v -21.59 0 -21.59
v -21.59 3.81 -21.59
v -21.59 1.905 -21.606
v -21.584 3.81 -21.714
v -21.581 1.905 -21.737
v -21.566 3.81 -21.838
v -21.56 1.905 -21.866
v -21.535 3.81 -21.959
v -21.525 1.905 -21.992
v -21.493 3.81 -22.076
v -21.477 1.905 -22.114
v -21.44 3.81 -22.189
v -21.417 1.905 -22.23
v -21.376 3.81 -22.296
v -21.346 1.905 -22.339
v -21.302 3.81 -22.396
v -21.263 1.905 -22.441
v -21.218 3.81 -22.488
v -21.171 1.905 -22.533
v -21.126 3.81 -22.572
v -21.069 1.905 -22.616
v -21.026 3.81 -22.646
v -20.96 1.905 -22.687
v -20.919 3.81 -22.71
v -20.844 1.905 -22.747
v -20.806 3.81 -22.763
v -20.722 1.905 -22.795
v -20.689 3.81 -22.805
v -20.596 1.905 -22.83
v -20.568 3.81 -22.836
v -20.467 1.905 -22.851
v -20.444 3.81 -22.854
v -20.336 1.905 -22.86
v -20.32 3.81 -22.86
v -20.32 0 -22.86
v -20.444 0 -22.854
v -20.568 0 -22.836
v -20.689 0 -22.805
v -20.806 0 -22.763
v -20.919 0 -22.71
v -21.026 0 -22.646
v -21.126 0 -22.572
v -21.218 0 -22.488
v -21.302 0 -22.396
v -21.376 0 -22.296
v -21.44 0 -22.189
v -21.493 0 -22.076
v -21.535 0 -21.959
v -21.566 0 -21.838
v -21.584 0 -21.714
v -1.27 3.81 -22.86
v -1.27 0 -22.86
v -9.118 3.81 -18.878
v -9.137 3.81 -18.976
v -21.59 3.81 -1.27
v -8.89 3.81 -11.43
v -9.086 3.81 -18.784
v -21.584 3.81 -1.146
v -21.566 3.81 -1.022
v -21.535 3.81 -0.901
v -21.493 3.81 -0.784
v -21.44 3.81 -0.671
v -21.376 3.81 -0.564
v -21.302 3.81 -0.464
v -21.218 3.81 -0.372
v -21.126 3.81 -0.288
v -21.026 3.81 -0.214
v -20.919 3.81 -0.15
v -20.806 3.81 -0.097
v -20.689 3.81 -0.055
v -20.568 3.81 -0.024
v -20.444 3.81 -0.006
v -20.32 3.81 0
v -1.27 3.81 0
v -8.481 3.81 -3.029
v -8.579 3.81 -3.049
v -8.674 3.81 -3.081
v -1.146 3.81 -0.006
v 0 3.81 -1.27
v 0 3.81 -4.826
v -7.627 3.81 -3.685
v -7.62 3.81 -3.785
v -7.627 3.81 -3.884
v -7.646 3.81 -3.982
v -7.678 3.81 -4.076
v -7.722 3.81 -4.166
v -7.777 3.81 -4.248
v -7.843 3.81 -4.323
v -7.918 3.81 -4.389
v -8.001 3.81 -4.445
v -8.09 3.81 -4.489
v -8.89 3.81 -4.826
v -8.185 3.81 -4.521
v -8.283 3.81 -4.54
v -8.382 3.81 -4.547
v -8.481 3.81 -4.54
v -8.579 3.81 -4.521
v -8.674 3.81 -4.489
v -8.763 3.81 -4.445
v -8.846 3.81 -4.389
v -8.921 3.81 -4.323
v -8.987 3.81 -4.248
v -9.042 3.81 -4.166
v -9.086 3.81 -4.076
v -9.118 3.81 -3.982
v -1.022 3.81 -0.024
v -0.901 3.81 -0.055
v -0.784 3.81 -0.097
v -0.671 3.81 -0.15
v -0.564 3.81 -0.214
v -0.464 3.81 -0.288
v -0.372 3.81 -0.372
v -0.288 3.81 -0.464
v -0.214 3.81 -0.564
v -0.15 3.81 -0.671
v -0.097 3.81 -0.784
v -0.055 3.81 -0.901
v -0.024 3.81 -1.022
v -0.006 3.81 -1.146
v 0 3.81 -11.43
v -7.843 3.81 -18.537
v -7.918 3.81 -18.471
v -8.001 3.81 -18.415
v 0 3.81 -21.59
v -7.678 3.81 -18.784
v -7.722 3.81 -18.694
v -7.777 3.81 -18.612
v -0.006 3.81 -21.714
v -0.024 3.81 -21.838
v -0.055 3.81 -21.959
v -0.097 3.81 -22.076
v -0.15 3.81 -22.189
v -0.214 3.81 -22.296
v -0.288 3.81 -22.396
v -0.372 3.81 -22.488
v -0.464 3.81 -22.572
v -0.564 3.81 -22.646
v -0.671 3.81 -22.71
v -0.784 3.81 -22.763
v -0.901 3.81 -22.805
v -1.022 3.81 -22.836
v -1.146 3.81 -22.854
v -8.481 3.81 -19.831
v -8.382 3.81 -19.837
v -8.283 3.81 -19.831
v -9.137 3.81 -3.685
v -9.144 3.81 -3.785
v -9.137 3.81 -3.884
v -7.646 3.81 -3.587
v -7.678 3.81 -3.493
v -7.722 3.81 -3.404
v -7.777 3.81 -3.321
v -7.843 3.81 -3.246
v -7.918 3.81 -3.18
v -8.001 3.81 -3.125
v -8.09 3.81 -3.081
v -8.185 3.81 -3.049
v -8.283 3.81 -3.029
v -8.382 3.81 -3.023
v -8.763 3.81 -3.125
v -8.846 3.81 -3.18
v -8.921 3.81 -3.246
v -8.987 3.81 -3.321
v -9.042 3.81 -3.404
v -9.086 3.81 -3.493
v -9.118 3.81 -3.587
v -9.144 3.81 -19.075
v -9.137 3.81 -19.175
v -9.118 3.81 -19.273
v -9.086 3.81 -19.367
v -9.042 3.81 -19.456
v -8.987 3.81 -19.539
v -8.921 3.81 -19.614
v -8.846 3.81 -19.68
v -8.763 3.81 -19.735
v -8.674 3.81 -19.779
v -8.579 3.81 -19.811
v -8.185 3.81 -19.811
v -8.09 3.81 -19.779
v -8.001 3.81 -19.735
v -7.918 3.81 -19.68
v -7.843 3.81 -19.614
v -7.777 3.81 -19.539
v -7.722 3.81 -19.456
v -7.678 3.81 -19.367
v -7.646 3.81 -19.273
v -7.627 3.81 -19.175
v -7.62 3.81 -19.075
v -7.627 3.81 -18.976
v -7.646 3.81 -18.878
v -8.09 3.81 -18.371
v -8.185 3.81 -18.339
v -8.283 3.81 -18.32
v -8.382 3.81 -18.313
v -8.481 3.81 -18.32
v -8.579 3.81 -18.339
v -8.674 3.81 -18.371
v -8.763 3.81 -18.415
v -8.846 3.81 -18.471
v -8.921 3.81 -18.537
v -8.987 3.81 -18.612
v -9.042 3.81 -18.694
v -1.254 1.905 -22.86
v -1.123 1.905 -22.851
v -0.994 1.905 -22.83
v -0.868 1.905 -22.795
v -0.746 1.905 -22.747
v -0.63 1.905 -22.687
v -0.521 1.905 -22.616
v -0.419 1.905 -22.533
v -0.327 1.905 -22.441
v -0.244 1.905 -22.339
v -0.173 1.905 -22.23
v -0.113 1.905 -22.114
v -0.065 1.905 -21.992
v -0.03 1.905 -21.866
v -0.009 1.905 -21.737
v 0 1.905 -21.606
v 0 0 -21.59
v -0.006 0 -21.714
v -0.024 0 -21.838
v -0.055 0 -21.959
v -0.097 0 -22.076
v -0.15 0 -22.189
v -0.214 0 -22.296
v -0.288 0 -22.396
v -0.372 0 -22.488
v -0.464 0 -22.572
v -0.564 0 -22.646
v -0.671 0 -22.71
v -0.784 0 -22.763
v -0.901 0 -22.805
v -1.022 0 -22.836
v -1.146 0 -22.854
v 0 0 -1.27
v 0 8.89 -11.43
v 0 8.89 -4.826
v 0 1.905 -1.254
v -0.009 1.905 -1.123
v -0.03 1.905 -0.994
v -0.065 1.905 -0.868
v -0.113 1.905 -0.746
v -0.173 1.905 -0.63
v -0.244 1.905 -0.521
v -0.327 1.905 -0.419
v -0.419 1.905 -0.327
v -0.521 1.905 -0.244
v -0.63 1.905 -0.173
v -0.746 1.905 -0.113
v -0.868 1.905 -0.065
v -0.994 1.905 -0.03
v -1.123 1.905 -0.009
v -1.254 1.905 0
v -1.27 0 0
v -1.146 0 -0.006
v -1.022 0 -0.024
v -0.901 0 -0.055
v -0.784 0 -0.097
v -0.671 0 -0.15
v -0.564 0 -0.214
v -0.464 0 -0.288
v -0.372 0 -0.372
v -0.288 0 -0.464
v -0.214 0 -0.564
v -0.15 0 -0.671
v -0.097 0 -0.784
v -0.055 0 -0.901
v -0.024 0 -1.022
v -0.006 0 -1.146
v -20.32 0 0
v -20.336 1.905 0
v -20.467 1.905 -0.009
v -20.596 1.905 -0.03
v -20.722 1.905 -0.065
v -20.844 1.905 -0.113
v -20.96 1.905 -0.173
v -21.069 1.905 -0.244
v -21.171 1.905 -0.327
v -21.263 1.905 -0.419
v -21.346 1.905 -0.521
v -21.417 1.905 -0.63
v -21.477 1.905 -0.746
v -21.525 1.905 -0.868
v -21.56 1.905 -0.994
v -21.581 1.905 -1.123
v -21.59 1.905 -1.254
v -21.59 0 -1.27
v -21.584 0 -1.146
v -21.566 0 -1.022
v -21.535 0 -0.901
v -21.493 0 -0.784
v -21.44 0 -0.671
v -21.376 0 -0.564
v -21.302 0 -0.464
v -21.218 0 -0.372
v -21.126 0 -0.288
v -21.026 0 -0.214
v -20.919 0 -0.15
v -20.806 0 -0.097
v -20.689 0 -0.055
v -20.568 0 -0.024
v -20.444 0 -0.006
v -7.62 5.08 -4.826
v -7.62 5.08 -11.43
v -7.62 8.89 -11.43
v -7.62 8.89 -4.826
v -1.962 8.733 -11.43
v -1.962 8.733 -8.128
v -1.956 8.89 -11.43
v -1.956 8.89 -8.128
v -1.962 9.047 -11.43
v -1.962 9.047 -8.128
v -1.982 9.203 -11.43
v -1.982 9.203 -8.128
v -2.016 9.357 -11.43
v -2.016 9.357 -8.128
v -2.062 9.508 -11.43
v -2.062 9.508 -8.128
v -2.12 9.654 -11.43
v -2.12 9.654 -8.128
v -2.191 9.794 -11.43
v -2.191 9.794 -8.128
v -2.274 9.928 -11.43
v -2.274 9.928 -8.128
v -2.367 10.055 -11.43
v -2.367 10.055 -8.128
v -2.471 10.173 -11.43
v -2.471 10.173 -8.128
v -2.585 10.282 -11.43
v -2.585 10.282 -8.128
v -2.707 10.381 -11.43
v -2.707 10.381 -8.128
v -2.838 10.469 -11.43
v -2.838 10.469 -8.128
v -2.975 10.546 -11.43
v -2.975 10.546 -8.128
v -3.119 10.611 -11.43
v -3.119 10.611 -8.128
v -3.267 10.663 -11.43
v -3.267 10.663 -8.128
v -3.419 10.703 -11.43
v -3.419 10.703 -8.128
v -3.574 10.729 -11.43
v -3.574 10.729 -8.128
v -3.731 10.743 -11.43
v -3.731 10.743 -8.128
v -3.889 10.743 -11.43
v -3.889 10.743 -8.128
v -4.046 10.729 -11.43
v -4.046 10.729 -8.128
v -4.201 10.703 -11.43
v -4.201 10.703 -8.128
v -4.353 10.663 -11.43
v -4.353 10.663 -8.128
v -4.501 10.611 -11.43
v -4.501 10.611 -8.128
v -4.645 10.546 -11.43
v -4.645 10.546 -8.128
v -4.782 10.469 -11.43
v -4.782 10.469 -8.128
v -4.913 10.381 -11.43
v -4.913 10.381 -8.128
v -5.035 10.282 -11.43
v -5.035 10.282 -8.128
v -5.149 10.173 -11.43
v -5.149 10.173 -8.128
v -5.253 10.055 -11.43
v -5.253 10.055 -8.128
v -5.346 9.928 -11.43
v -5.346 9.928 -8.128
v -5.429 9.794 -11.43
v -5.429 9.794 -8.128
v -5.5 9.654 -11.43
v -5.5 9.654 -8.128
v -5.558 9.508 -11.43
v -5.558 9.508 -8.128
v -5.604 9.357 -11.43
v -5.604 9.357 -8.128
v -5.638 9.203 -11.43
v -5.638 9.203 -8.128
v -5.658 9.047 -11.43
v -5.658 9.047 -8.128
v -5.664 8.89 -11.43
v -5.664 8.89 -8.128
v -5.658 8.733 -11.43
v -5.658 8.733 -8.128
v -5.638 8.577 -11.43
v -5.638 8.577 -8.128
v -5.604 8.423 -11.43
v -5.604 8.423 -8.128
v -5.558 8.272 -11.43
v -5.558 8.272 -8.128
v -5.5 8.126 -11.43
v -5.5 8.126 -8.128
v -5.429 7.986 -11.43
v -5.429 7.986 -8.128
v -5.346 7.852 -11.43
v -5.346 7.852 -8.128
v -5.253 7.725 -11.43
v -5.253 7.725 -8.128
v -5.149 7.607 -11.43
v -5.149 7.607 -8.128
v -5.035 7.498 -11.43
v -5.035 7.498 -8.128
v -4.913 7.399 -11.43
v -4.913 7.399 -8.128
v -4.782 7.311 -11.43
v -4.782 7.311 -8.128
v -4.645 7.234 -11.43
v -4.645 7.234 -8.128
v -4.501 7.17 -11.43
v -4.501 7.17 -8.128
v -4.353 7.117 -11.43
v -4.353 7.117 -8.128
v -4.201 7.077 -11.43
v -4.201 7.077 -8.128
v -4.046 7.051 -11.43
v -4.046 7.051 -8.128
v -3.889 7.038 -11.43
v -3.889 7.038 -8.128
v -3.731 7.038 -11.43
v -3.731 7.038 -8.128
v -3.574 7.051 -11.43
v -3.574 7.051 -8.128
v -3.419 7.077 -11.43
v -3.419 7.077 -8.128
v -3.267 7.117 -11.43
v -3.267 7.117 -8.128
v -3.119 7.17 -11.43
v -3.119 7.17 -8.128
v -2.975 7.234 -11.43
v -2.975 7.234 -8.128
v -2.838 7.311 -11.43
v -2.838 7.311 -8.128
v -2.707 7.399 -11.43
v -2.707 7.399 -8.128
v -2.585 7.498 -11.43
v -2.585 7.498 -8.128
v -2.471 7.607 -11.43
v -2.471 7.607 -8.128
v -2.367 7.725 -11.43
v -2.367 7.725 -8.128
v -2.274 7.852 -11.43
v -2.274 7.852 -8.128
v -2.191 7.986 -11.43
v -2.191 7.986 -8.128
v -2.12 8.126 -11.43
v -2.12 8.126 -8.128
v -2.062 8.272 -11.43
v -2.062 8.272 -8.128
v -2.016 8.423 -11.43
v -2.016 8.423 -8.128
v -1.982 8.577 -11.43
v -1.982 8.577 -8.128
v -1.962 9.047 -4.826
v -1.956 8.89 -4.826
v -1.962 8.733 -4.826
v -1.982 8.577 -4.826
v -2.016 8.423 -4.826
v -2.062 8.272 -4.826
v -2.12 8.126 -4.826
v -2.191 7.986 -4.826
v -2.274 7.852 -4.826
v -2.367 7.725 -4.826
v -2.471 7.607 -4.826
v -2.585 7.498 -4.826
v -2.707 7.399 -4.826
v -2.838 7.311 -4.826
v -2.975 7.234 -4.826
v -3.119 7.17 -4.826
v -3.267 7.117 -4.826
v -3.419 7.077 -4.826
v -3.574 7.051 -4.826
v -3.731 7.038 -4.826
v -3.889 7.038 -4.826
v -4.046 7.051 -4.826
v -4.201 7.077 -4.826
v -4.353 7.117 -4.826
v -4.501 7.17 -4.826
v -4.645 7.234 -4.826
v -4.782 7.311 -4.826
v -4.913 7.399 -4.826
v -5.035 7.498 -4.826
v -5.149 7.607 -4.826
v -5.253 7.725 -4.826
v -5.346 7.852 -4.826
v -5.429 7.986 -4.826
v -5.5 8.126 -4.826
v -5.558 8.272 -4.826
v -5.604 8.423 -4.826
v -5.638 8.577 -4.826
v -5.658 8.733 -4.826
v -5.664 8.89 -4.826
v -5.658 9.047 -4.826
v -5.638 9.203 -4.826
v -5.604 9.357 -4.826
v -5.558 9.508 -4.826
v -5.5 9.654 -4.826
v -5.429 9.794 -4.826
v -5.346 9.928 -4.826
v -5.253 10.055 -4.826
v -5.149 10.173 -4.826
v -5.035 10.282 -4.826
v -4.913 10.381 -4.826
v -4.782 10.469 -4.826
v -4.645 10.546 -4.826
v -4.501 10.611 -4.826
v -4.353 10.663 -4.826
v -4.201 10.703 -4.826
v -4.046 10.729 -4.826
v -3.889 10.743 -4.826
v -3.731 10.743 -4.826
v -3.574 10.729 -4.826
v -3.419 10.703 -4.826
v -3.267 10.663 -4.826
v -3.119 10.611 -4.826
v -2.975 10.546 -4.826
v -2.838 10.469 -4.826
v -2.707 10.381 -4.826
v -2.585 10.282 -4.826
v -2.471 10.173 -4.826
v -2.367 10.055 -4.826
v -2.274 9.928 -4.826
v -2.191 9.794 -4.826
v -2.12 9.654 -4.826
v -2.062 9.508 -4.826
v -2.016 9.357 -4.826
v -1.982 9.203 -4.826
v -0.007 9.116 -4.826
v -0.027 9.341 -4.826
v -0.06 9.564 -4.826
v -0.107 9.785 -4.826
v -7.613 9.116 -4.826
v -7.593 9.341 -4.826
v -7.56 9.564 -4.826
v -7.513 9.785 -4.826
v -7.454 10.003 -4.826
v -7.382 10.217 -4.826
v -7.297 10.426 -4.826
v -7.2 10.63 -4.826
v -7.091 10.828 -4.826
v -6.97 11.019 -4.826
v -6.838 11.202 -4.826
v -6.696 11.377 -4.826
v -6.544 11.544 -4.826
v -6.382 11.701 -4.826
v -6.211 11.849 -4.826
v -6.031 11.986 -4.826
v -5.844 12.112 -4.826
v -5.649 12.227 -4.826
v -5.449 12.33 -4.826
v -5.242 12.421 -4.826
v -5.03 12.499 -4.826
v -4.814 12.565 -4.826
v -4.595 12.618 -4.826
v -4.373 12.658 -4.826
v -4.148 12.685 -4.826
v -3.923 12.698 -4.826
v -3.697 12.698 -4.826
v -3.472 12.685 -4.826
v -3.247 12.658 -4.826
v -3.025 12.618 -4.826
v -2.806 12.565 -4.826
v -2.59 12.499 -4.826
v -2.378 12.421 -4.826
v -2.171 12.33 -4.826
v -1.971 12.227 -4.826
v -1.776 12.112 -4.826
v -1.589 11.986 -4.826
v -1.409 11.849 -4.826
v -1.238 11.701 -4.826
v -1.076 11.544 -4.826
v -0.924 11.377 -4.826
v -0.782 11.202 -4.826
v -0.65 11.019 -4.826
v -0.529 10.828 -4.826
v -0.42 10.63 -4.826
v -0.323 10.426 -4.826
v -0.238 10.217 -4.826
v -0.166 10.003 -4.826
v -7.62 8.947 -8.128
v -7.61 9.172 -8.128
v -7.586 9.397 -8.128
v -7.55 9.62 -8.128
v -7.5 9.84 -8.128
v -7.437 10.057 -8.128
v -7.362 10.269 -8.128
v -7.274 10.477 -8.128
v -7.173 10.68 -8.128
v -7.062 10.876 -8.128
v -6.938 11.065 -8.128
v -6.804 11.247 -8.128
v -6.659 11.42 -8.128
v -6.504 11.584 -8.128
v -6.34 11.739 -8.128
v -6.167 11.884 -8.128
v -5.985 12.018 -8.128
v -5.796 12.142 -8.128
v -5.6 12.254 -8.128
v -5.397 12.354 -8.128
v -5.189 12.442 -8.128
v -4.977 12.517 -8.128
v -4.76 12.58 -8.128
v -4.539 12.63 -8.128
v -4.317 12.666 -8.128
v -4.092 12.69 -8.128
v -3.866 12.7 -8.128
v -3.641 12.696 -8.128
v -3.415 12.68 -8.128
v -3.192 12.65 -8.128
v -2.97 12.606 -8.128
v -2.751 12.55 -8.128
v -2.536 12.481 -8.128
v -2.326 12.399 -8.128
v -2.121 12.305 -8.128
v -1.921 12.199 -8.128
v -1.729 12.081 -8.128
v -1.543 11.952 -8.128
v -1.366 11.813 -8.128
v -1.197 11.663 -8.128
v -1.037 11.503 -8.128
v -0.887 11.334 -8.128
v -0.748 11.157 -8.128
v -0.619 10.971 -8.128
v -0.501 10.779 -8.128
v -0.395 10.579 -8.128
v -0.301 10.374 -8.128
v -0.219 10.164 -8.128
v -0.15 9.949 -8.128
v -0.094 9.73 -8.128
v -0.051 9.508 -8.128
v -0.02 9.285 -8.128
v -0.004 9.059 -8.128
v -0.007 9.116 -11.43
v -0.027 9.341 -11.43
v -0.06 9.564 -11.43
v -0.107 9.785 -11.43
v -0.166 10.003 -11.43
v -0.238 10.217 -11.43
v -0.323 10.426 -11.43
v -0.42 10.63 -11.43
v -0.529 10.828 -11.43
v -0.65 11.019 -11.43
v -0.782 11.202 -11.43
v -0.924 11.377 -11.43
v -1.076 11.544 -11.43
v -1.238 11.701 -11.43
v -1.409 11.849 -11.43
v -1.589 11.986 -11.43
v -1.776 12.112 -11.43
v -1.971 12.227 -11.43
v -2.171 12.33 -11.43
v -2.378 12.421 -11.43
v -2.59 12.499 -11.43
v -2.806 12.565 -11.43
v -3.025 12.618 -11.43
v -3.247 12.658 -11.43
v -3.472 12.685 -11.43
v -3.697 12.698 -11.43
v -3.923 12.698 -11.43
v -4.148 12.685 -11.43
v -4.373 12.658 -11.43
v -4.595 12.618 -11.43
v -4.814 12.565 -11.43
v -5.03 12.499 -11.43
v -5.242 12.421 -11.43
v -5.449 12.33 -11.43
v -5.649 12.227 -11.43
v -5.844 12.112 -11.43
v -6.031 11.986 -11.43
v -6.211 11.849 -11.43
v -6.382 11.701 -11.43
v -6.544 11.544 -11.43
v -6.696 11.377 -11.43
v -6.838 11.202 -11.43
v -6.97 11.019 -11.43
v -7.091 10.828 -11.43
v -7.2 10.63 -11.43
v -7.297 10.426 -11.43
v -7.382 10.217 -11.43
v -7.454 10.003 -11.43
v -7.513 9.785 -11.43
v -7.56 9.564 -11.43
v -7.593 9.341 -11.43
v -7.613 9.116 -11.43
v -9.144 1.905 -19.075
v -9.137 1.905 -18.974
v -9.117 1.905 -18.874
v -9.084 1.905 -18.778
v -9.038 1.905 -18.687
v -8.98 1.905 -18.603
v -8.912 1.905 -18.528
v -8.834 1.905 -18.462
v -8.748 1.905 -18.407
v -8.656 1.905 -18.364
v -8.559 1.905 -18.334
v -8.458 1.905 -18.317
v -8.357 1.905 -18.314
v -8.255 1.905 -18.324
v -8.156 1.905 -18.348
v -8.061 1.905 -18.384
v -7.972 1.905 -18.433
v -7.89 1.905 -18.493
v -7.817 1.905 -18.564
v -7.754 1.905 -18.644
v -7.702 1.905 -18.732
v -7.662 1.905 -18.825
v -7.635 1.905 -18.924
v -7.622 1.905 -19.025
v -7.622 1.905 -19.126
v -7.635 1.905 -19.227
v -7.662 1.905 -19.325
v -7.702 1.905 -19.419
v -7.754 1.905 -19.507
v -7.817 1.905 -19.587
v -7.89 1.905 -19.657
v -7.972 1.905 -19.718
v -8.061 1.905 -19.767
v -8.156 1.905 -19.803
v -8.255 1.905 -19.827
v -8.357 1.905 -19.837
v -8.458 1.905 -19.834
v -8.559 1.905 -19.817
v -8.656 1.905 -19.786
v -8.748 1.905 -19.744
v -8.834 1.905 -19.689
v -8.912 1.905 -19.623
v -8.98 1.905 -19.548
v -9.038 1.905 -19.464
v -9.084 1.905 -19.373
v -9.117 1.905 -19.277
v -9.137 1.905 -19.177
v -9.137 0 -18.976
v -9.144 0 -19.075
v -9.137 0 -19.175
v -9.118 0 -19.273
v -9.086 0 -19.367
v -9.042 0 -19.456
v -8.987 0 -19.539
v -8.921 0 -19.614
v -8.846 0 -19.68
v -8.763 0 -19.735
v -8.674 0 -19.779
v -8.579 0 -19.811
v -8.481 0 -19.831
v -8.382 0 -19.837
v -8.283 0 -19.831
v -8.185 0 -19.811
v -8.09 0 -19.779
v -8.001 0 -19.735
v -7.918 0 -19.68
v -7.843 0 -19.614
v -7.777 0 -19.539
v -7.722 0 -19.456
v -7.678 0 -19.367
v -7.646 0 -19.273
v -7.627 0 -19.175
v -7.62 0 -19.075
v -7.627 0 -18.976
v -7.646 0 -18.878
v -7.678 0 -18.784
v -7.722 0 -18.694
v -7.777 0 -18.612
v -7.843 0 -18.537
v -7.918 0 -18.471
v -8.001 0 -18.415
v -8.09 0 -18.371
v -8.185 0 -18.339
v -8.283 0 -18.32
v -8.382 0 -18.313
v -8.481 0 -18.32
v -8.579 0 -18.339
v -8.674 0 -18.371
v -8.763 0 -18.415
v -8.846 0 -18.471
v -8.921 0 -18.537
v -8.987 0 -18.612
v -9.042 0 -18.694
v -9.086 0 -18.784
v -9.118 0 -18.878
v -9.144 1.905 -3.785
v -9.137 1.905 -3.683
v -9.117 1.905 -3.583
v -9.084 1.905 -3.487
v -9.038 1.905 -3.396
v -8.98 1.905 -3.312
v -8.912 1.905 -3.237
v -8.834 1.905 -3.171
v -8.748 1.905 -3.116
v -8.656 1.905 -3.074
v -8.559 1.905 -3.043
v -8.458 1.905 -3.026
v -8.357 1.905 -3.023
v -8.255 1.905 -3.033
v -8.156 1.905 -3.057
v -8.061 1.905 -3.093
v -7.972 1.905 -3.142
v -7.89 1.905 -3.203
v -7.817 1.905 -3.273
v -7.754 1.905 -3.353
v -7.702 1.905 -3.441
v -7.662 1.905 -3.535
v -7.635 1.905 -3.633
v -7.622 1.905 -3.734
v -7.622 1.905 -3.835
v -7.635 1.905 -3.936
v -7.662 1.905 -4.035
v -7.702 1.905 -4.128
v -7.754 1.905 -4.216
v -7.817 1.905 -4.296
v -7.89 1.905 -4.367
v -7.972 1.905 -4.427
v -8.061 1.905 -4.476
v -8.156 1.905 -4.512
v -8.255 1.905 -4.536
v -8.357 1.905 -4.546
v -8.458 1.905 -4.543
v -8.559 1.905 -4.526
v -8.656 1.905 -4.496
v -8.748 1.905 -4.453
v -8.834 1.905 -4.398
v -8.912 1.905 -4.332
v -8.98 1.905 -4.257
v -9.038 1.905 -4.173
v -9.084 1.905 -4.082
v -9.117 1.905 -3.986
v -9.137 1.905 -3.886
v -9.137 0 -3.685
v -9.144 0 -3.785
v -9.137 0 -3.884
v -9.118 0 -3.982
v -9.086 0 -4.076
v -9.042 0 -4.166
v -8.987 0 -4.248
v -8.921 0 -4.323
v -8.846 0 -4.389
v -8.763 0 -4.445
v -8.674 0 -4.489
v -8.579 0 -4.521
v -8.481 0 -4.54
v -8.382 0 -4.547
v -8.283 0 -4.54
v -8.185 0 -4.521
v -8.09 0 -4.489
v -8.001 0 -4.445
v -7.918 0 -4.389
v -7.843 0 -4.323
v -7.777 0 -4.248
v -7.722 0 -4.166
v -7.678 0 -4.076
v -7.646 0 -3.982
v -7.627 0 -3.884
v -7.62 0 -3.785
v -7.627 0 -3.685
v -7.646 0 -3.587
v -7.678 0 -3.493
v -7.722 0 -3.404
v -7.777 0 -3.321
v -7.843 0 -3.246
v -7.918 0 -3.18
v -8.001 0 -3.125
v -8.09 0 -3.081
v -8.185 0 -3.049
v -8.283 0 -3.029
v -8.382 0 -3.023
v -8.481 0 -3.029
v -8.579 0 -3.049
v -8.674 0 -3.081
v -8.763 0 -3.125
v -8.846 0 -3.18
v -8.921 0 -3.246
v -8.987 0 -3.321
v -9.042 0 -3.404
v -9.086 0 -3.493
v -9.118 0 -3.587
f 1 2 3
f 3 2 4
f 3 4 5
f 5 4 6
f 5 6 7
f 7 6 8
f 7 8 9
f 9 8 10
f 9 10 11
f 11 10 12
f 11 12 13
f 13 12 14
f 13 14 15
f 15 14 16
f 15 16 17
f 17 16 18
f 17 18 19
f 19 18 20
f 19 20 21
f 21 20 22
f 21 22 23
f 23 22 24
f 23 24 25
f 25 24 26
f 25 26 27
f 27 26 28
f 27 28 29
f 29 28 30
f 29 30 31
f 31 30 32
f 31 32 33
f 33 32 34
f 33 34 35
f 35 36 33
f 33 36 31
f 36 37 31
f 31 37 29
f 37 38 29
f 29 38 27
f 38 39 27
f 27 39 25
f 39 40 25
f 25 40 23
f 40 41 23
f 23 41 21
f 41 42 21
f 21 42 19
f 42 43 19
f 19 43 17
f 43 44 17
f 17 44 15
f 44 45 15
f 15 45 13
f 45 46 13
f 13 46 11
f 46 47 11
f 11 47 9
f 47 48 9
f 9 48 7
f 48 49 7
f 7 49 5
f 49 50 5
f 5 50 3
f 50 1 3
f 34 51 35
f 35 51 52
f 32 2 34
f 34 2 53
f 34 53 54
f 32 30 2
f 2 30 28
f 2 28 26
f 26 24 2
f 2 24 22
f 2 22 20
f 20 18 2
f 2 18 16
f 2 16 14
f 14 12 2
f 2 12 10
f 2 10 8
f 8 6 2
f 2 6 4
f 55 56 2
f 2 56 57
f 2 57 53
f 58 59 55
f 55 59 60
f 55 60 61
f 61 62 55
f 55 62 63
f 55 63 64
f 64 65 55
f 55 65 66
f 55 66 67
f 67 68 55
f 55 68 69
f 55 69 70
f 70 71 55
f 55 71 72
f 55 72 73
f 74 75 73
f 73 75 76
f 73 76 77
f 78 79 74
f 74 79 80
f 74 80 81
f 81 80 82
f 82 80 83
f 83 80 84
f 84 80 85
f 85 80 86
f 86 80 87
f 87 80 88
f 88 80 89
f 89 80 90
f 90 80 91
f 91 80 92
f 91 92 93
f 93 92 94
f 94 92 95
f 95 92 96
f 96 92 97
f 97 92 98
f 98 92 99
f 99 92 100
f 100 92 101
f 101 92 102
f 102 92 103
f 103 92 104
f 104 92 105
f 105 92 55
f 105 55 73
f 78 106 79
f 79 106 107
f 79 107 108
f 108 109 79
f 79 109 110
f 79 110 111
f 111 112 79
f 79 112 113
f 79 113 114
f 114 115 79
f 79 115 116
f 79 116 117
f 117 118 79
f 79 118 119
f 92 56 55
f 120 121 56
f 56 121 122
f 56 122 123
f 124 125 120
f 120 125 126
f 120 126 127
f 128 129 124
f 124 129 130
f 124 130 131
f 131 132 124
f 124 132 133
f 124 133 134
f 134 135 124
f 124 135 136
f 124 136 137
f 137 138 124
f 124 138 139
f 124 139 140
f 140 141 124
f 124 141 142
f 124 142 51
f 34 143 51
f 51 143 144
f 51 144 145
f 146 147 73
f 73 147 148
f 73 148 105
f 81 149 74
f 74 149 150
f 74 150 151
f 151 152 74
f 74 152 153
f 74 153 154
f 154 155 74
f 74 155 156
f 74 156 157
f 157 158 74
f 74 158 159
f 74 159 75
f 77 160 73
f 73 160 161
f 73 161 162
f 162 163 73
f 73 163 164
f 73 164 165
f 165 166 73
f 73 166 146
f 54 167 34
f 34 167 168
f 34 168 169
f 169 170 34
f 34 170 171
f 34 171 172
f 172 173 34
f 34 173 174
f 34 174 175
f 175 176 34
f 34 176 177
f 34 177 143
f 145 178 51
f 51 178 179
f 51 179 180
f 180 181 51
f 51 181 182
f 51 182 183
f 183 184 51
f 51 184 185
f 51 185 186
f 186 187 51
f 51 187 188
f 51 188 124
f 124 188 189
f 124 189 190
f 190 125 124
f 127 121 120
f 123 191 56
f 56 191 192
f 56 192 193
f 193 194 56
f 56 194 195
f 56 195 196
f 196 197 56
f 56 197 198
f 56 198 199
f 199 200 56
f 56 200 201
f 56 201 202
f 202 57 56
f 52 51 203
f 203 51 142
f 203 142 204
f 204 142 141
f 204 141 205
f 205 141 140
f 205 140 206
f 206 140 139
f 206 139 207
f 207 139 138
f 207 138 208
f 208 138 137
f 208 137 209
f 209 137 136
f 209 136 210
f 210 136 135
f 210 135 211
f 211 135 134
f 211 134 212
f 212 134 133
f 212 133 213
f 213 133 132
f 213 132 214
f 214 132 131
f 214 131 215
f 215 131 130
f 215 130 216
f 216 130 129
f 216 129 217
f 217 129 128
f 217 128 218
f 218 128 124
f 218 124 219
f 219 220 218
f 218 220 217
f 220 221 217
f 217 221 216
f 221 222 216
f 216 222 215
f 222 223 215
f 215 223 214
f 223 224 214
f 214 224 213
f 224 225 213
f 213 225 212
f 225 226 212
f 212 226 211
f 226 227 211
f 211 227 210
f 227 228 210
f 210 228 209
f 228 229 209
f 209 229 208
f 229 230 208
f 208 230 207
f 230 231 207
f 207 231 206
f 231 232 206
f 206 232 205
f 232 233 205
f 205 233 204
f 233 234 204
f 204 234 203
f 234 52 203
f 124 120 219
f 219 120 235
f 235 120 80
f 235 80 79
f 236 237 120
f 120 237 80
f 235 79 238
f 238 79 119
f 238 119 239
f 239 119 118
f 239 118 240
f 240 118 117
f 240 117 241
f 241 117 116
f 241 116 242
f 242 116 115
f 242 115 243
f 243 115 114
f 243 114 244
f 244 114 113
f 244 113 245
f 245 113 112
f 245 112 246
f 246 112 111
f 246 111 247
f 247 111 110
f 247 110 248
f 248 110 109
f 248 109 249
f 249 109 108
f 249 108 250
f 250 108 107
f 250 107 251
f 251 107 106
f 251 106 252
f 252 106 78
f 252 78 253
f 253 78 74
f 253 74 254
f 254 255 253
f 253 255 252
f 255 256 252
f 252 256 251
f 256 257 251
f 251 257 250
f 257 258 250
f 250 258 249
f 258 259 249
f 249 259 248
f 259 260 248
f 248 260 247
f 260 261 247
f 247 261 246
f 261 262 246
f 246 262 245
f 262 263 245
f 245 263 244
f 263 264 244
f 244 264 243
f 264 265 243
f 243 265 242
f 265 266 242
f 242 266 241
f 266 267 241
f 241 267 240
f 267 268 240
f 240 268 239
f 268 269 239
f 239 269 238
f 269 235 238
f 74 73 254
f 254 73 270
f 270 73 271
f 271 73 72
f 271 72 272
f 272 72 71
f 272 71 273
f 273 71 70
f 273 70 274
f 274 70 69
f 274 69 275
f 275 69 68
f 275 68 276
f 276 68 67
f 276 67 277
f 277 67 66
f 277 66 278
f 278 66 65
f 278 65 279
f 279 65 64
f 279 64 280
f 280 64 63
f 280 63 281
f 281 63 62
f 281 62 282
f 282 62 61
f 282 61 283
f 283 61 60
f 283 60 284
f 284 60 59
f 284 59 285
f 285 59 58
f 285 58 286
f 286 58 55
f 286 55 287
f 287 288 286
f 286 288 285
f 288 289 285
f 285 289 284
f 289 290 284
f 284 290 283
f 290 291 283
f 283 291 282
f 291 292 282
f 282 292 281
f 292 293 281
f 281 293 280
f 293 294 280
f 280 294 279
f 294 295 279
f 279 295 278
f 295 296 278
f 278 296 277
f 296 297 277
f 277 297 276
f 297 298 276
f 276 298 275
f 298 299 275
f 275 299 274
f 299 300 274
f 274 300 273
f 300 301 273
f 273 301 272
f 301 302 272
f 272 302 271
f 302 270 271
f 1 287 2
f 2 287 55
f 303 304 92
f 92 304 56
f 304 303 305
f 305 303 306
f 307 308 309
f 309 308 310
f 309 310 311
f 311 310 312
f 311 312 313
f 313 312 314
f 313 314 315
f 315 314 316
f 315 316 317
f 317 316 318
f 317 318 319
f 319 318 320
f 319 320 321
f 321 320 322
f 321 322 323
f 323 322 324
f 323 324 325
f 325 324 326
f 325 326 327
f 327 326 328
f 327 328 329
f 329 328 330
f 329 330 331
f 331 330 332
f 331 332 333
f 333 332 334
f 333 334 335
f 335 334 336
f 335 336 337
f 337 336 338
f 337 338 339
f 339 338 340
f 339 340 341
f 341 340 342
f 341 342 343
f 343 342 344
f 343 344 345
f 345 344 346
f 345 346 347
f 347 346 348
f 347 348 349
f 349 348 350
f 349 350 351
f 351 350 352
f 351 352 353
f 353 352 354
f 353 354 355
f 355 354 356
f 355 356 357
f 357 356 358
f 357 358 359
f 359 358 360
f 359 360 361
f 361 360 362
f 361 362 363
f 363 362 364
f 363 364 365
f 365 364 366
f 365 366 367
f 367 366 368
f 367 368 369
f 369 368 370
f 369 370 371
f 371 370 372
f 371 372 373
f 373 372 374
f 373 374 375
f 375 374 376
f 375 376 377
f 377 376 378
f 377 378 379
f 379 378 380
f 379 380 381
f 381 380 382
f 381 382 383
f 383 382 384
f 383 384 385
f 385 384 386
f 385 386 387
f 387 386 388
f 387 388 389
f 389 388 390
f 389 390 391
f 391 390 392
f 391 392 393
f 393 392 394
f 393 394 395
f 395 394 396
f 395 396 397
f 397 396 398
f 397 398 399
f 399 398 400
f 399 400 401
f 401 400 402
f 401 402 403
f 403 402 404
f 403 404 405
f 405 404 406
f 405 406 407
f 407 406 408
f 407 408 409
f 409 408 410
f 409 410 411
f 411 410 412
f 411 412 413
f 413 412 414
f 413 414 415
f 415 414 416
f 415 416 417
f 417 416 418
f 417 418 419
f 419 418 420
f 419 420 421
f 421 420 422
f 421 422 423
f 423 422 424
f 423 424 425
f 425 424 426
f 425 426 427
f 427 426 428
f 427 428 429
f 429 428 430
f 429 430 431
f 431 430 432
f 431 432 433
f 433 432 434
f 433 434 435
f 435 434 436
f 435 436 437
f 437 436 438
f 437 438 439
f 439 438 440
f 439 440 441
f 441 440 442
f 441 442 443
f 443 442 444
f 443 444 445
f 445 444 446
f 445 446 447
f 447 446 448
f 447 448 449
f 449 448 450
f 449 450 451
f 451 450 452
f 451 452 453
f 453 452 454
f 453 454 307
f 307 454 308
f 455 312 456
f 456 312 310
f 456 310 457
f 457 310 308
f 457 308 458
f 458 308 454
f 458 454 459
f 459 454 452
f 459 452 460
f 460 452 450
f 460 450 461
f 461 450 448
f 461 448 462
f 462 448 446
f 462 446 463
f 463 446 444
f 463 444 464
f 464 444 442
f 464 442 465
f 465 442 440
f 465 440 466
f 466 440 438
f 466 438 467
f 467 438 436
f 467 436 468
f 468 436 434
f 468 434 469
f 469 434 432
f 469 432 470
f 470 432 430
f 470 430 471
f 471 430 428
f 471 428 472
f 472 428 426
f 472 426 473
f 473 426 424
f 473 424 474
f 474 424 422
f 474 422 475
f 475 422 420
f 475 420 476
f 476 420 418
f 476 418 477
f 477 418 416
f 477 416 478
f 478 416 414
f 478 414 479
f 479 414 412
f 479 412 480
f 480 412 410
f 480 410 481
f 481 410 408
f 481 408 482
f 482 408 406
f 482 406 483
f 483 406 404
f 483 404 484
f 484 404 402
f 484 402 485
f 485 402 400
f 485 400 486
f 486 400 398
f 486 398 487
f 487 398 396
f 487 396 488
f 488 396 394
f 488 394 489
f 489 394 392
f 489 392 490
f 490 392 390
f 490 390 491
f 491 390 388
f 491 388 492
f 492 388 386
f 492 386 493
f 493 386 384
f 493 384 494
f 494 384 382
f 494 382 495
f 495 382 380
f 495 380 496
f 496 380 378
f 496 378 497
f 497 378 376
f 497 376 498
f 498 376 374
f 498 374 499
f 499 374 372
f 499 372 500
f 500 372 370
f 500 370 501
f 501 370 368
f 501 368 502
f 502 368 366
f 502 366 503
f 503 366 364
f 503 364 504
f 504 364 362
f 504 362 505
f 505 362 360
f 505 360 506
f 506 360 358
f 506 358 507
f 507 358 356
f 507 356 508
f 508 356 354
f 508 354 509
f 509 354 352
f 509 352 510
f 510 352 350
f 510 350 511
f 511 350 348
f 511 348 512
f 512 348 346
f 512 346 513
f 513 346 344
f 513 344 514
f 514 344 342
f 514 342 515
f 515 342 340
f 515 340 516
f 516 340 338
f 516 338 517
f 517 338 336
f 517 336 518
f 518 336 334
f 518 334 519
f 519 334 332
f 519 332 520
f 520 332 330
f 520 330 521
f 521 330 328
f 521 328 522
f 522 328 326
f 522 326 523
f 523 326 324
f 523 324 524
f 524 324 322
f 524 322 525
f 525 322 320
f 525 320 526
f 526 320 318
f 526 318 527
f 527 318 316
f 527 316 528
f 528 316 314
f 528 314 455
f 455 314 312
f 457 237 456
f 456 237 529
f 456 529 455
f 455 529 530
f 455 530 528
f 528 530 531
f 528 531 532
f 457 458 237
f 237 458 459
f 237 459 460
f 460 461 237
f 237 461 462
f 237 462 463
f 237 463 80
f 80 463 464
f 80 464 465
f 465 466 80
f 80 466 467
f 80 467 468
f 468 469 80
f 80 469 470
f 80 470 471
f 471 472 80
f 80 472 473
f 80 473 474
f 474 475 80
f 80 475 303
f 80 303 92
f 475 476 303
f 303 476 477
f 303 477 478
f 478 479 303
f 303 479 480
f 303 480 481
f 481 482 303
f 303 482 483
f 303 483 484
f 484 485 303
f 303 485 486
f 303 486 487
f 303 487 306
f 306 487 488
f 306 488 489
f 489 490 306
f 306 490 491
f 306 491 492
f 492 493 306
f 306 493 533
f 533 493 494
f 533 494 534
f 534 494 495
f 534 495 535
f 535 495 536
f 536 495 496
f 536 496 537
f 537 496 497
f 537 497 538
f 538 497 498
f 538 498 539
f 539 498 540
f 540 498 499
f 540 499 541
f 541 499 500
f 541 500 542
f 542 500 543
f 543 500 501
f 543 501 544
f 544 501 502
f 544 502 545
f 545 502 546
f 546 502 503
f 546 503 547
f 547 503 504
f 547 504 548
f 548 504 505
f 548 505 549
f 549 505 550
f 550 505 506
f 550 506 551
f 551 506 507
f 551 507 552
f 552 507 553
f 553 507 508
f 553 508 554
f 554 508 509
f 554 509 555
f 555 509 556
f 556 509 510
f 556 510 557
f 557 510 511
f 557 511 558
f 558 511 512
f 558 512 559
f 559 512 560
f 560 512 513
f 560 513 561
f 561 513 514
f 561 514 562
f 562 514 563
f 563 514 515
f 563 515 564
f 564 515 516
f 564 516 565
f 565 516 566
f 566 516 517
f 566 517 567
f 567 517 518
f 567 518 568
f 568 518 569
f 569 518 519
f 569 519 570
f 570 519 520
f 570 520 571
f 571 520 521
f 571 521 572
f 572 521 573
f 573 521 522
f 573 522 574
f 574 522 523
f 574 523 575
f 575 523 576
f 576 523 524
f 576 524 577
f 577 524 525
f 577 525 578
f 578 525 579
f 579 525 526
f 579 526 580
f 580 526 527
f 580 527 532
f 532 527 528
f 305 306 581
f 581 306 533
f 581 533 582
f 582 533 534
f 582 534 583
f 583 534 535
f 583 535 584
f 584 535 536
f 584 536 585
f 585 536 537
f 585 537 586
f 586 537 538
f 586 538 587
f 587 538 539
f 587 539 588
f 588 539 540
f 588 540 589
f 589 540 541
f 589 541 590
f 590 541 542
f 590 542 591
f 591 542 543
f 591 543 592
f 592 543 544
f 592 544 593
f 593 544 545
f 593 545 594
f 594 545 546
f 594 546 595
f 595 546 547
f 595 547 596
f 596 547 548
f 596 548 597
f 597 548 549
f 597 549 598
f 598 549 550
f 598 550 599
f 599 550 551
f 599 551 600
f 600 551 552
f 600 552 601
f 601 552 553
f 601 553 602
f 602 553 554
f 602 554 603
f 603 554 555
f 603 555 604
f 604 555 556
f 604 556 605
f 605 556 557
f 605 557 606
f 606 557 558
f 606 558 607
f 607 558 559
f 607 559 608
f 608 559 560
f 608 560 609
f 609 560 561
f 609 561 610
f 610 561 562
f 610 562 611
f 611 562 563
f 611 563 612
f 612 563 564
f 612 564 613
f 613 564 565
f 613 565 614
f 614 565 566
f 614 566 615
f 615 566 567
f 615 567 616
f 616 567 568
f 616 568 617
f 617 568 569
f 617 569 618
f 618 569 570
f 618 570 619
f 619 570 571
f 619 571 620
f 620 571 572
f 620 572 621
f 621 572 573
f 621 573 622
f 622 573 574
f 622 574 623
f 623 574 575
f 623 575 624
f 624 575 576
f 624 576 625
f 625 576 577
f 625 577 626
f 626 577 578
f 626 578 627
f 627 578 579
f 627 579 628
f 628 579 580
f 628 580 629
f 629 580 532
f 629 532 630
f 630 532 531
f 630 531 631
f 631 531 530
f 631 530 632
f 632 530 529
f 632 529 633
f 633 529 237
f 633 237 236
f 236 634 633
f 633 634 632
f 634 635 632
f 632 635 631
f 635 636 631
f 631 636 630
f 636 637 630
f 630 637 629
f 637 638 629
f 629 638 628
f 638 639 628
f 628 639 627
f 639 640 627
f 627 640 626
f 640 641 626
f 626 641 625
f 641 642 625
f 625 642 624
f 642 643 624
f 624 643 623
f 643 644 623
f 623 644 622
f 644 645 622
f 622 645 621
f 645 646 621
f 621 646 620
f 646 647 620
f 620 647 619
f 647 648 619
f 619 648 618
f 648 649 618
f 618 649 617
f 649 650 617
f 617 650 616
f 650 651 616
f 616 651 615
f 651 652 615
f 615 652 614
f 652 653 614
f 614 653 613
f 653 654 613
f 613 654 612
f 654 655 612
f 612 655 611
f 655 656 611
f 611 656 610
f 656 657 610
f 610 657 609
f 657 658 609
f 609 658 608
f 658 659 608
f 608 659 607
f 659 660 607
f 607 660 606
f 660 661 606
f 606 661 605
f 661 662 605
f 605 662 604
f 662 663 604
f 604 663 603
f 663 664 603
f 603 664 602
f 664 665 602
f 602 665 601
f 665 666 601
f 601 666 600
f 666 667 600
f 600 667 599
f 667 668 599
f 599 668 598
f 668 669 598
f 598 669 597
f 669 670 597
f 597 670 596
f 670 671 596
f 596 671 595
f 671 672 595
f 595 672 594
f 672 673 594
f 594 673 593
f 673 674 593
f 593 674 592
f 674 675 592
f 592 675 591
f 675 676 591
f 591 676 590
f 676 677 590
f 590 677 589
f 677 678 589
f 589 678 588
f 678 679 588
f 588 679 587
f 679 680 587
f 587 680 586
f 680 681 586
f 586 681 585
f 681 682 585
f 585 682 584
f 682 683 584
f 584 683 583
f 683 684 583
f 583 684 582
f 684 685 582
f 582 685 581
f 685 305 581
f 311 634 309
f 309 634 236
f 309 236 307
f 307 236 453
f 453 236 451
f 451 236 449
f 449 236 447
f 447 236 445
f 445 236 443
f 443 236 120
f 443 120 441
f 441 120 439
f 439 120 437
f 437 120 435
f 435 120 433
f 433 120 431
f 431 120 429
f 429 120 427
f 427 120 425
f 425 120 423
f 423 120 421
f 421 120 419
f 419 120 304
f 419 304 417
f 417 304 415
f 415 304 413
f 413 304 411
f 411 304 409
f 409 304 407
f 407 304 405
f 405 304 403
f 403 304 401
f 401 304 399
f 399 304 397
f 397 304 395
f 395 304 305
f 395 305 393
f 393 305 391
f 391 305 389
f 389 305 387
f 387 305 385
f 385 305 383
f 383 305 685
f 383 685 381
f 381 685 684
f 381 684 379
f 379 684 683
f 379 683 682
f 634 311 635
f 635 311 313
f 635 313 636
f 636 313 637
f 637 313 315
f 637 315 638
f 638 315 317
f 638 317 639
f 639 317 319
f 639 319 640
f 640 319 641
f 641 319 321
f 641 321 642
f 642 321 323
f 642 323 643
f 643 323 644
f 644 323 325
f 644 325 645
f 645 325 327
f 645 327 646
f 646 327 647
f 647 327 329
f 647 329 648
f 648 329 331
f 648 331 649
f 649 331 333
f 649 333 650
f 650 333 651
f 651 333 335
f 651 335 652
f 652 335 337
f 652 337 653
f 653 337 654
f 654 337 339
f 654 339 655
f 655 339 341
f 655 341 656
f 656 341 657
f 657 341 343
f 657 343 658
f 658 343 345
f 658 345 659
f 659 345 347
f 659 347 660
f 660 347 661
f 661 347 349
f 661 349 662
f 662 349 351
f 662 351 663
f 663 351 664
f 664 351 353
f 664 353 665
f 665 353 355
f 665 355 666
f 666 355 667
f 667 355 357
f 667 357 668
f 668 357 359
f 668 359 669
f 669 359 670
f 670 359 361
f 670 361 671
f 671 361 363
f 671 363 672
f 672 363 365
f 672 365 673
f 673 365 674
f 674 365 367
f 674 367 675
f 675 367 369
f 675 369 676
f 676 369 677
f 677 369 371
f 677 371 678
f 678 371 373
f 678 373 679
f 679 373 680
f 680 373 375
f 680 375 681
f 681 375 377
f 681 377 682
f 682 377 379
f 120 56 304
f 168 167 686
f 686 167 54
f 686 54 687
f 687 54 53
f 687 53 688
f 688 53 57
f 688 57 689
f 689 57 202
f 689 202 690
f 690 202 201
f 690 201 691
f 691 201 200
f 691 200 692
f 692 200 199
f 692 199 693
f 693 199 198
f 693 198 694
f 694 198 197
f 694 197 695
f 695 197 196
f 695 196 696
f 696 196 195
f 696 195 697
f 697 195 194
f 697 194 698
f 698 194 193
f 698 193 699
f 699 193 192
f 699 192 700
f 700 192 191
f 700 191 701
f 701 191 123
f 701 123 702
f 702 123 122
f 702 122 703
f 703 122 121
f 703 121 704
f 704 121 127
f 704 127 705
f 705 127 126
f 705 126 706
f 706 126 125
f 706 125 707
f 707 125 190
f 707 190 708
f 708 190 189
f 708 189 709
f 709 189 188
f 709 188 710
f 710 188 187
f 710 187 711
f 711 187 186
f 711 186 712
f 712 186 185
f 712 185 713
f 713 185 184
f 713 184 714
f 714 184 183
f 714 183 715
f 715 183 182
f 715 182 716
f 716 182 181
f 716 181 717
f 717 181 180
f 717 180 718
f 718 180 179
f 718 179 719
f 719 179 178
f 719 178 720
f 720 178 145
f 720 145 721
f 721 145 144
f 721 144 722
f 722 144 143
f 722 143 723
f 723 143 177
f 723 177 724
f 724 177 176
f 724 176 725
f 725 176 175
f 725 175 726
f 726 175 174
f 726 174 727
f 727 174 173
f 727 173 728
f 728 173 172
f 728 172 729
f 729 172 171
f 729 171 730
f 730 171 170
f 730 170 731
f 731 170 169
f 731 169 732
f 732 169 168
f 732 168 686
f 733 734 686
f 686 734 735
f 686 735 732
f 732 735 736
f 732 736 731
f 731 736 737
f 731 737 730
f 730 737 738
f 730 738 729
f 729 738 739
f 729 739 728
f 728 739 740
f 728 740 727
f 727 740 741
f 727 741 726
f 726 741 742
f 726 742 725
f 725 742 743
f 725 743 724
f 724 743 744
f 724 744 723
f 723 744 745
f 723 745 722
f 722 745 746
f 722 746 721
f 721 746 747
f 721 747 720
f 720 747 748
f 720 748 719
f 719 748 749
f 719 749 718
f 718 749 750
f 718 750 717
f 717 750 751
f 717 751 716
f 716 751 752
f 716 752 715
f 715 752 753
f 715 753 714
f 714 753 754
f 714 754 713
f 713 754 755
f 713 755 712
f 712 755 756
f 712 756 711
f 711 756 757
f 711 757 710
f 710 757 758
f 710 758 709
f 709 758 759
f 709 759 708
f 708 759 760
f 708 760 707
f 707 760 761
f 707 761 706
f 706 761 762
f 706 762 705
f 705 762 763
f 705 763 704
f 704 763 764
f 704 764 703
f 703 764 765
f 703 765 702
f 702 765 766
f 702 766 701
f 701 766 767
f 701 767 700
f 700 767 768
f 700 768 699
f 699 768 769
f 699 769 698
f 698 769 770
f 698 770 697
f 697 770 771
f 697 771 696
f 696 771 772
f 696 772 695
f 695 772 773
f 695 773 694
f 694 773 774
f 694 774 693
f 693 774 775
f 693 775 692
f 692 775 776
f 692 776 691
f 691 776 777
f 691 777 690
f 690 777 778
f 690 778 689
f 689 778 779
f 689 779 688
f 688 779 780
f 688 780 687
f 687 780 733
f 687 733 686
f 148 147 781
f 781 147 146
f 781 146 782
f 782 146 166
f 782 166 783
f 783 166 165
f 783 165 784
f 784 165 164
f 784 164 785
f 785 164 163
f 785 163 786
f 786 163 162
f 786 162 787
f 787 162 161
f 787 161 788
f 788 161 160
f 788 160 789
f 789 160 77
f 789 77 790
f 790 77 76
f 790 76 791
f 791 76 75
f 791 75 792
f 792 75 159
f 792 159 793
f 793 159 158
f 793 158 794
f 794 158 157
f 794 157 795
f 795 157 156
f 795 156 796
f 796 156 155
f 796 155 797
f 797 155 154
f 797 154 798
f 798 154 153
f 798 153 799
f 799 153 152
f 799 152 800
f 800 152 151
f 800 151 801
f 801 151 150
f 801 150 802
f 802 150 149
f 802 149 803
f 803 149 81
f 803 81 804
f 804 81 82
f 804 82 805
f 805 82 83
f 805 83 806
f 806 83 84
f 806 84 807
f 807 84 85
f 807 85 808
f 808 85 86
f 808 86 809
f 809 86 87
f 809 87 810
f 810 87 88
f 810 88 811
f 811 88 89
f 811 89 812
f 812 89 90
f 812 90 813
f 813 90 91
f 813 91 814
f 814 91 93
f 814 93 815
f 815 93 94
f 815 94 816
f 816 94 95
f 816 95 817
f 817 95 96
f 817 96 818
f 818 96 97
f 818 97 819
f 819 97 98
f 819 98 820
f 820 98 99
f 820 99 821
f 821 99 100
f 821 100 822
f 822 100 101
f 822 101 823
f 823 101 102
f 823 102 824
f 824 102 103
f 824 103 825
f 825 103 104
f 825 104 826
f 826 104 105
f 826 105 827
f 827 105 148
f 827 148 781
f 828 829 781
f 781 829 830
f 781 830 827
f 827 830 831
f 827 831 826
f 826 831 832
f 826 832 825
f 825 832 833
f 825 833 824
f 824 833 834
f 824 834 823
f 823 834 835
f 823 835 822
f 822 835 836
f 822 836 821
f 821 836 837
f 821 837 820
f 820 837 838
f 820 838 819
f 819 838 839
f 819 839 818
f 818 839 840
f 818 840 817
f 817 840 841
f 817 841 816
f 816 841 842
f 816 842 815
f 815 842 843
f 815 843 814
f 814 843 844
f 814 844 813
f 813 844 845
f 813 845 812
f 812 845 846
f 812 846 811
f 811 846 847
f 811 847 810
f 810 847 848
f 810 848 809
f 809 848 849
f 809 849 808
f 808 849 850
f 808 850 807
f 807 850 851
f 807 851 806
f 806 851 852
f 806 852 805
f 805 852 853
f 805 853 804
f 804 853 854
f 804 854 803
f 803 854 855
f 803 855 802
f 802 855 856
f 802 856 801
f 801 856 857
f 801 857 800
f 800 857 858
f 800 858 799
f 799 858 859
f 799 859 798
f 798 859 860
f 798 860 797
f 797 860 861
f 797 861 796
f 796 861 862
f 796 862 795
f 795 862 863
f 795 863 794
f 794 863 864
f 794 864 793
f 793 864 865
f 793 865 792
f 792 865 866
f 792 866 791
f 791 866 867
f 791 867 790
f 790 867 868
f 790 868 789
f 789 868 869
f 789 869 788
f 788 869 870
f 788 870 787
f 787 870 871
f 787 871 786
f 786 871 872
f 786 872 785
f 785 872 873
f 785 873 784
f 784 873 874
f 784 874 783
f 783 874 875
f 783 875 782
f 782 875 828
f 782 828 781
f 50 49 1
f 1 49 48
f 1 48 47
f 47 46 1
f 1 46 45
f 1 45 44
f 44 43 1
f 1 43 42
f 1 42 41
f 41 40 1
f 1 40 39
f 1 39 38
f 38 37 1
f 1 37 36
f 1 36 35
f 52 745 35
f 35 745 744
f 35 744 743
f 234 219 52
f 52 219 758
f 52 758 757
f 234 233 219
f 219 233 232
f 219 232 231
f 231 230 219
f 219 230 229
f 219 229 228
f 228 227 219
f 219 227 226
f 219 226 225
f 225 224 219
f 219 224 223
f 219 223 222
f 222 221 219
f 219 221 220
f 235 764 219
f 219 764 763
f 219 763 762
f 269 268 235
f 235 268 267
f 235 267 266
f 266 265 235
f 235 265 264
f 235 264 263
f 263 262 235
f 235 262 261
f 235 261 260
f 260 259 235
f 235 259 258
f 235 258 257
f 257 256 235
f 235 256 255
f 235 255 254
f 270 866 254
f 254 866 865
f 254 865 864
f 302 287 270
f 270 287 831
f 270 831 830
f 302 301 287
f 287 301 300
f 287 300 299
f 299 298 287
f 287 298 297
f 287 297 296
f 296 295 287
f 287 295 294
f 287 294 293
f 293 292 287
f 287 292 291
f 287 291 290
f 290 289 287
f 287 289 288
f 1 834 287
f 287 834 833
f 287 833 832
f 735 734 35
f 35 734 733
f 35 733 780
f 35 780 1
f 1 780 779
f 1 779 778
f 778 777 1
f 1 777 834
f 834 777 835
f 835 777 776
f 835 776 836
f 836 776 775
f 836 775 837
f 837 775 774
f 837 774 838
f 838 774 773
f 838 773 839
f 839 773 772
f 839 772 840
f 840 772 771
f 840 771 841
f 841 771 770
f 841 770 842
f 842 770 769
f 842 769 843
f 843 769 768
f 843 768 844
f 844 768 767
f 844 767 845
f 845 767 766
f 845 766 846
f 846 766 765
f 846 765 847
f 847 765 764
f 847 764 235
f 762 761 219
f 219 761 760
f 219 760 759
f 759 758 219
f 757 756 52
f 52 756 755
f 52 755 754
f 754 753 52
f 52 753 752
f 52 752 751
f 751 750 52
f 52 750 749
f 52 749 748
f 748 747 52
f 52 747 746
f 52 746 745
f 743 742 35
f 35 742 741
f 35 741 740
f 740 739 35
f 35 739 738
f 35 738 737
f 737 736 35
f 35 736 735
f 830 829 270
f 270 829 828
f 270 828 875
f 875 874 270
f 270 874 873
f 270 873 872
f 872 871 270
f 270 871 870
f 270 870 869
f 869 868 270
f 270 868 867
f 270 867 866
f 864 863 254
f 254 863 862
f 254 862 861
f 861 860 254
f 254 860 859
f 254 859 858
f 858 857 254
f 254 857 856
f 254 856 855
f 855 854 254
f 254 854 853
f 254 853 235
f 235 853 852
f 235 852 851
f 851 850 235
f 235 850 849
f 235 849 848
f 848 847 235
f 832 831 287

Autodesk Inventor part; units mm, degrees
ref_plane "YZ Plane" through (0, 0, 0) normal (1, 0, 0) x (0, 1, 0)
ref_plane "XZ Plane" through (0, 0, 0) normal (0, 1, 0) x (-1, 0, 0)
ref_plane "XY Plane" through (0, 0, 0) normal (0, 0, 1) x (1, 0, 0)
sketch "Sketch1" plane through (0, 0, 0) normal (0, 1, 0) x (-1, 0, 0)
  line L0 (0, 0) -> (21.59, 0)
  line L1 (21.59, 0) -> (21.59, -22.86)
  line L2 (21.59, -22.86) -> (0, -22.86)
  line L3 (0, -22.86) -> (0, 0)
  line L4 (6.35, 0) -> (6.35, -22.86) construction
  circle A0 centre (8.382, -3.7846) radius 0.762
  circle A1 centre (8.382, -19.0754) radius 0.762
  line L5 (6.35, -3.7846) -> (7.62, -3.7846) construction
  line L6 (8.382, -3.0226) -> (8.382, 0) construction
  line L7 (7.62, -19.0754) -> (6.35, -19.0754) construction
  line L8 (8.382, -19.8374) -> (8.382, -22.86) construction
  line L9 (17.653, -10.287) -> (15.367, -10.287) construction
  line L10 (15.367, -10.287) -> (15.367, -12.573) construction
  line L11 (15.367, -12.573) -> (17.653, -12.573) construction
  line L12 (17.653, -12.573) -> (17.653, -10.287) construction
  line L13 (17.653, -11.43) -> (15.367, -11.43) construction
  line L14 (16.51, -10.287) -> (16.51, -12.573) construction
  line L15 (8.382, -19.0754) -> (8.382, -3.7846) construction
  point P0 (6.35, -11.43)
  dimension "d0" = 22.86
  dimension "d1" = 21.59
  dimension "d2" = 1.524
  dimension "d3" = 1.524
  dimension "d4" = 1.27
  dimension "d6" = 1.27
  dimension "d10" = 15.24
  dimension "d11" = 2.286
  dimension "d12" = 2.286
  dimension "d13" = 10.16
  dimension "d14" = 16.51
  dimension "d30" = 15.2908
  dimension "d31" = 3.0226
extrude "Extrusion1" add sketch "Sketch1" along normal blind 3.81
sketch "Sketch2" plane through (0, 3.81, 0) normal (0, 1, 0) x (1, 0, 0)
  line L0 (-21.59, 22.86) -> (-21.59, 0) projected
  line L1 (-21.59, 11.43) -> (0, 11.43) construction
  line L2 (0, 0) -> (0, 22.86) projected
  line L3 (0, 11.43) -> (-7.62, 11.43)
  line L4 (-7.62, 11.43) -> (-7.62, 4.826)
  line L5 (-7.62, 4.826) -> (0, 4.826)
  line L6 (0, 4.826) -> (0, 11.43)
  dimension "d17" = 6.604
  dimension "d18" = 7.62
extrude "Extrusion2" add sketch "Sketch2" along normal blind 8.89
fillet "Fillet1" radius 3.81 2 edges at (-7.62, 12.7, -8.128) (0, 12.7, -8.128)
sketch "Sketch3" plane through (-7.62, 3.81, -4.826) normal (0, 0, 1) x (1, 0, 0)
  arc A0 (7.62, 5.08) -> (0, 5.08) centre (3.81, 5.08) ccw projected
  circle A1 centre (3.81, 5.08) radius 1.8542
  point P0 (7.62, -3.81)
  dimension "d22" = 3.7084
extrude "Extrusion4" cut sketch "Sketch3" against normal through all
chamfer "Chamfer1" distance 1.27 angle 45 1 edges at (-7.62, 3.81, -8.128)
fillet "Fillet2" radius 1.27 4 edges at (-21.59, 1.905, 0) (0, 1.905, 0) (0, 1.905, -22.86) (-21.59, 1.905, -22.86)
equation "\"d3\" = d2"
equation "\"d6\" = d4"
equation "\"d31\" = -0.5 * d2 + 0.5 * d0 - 0.5 * d30"
properties part number "Mount for TMP007 Sensor"
